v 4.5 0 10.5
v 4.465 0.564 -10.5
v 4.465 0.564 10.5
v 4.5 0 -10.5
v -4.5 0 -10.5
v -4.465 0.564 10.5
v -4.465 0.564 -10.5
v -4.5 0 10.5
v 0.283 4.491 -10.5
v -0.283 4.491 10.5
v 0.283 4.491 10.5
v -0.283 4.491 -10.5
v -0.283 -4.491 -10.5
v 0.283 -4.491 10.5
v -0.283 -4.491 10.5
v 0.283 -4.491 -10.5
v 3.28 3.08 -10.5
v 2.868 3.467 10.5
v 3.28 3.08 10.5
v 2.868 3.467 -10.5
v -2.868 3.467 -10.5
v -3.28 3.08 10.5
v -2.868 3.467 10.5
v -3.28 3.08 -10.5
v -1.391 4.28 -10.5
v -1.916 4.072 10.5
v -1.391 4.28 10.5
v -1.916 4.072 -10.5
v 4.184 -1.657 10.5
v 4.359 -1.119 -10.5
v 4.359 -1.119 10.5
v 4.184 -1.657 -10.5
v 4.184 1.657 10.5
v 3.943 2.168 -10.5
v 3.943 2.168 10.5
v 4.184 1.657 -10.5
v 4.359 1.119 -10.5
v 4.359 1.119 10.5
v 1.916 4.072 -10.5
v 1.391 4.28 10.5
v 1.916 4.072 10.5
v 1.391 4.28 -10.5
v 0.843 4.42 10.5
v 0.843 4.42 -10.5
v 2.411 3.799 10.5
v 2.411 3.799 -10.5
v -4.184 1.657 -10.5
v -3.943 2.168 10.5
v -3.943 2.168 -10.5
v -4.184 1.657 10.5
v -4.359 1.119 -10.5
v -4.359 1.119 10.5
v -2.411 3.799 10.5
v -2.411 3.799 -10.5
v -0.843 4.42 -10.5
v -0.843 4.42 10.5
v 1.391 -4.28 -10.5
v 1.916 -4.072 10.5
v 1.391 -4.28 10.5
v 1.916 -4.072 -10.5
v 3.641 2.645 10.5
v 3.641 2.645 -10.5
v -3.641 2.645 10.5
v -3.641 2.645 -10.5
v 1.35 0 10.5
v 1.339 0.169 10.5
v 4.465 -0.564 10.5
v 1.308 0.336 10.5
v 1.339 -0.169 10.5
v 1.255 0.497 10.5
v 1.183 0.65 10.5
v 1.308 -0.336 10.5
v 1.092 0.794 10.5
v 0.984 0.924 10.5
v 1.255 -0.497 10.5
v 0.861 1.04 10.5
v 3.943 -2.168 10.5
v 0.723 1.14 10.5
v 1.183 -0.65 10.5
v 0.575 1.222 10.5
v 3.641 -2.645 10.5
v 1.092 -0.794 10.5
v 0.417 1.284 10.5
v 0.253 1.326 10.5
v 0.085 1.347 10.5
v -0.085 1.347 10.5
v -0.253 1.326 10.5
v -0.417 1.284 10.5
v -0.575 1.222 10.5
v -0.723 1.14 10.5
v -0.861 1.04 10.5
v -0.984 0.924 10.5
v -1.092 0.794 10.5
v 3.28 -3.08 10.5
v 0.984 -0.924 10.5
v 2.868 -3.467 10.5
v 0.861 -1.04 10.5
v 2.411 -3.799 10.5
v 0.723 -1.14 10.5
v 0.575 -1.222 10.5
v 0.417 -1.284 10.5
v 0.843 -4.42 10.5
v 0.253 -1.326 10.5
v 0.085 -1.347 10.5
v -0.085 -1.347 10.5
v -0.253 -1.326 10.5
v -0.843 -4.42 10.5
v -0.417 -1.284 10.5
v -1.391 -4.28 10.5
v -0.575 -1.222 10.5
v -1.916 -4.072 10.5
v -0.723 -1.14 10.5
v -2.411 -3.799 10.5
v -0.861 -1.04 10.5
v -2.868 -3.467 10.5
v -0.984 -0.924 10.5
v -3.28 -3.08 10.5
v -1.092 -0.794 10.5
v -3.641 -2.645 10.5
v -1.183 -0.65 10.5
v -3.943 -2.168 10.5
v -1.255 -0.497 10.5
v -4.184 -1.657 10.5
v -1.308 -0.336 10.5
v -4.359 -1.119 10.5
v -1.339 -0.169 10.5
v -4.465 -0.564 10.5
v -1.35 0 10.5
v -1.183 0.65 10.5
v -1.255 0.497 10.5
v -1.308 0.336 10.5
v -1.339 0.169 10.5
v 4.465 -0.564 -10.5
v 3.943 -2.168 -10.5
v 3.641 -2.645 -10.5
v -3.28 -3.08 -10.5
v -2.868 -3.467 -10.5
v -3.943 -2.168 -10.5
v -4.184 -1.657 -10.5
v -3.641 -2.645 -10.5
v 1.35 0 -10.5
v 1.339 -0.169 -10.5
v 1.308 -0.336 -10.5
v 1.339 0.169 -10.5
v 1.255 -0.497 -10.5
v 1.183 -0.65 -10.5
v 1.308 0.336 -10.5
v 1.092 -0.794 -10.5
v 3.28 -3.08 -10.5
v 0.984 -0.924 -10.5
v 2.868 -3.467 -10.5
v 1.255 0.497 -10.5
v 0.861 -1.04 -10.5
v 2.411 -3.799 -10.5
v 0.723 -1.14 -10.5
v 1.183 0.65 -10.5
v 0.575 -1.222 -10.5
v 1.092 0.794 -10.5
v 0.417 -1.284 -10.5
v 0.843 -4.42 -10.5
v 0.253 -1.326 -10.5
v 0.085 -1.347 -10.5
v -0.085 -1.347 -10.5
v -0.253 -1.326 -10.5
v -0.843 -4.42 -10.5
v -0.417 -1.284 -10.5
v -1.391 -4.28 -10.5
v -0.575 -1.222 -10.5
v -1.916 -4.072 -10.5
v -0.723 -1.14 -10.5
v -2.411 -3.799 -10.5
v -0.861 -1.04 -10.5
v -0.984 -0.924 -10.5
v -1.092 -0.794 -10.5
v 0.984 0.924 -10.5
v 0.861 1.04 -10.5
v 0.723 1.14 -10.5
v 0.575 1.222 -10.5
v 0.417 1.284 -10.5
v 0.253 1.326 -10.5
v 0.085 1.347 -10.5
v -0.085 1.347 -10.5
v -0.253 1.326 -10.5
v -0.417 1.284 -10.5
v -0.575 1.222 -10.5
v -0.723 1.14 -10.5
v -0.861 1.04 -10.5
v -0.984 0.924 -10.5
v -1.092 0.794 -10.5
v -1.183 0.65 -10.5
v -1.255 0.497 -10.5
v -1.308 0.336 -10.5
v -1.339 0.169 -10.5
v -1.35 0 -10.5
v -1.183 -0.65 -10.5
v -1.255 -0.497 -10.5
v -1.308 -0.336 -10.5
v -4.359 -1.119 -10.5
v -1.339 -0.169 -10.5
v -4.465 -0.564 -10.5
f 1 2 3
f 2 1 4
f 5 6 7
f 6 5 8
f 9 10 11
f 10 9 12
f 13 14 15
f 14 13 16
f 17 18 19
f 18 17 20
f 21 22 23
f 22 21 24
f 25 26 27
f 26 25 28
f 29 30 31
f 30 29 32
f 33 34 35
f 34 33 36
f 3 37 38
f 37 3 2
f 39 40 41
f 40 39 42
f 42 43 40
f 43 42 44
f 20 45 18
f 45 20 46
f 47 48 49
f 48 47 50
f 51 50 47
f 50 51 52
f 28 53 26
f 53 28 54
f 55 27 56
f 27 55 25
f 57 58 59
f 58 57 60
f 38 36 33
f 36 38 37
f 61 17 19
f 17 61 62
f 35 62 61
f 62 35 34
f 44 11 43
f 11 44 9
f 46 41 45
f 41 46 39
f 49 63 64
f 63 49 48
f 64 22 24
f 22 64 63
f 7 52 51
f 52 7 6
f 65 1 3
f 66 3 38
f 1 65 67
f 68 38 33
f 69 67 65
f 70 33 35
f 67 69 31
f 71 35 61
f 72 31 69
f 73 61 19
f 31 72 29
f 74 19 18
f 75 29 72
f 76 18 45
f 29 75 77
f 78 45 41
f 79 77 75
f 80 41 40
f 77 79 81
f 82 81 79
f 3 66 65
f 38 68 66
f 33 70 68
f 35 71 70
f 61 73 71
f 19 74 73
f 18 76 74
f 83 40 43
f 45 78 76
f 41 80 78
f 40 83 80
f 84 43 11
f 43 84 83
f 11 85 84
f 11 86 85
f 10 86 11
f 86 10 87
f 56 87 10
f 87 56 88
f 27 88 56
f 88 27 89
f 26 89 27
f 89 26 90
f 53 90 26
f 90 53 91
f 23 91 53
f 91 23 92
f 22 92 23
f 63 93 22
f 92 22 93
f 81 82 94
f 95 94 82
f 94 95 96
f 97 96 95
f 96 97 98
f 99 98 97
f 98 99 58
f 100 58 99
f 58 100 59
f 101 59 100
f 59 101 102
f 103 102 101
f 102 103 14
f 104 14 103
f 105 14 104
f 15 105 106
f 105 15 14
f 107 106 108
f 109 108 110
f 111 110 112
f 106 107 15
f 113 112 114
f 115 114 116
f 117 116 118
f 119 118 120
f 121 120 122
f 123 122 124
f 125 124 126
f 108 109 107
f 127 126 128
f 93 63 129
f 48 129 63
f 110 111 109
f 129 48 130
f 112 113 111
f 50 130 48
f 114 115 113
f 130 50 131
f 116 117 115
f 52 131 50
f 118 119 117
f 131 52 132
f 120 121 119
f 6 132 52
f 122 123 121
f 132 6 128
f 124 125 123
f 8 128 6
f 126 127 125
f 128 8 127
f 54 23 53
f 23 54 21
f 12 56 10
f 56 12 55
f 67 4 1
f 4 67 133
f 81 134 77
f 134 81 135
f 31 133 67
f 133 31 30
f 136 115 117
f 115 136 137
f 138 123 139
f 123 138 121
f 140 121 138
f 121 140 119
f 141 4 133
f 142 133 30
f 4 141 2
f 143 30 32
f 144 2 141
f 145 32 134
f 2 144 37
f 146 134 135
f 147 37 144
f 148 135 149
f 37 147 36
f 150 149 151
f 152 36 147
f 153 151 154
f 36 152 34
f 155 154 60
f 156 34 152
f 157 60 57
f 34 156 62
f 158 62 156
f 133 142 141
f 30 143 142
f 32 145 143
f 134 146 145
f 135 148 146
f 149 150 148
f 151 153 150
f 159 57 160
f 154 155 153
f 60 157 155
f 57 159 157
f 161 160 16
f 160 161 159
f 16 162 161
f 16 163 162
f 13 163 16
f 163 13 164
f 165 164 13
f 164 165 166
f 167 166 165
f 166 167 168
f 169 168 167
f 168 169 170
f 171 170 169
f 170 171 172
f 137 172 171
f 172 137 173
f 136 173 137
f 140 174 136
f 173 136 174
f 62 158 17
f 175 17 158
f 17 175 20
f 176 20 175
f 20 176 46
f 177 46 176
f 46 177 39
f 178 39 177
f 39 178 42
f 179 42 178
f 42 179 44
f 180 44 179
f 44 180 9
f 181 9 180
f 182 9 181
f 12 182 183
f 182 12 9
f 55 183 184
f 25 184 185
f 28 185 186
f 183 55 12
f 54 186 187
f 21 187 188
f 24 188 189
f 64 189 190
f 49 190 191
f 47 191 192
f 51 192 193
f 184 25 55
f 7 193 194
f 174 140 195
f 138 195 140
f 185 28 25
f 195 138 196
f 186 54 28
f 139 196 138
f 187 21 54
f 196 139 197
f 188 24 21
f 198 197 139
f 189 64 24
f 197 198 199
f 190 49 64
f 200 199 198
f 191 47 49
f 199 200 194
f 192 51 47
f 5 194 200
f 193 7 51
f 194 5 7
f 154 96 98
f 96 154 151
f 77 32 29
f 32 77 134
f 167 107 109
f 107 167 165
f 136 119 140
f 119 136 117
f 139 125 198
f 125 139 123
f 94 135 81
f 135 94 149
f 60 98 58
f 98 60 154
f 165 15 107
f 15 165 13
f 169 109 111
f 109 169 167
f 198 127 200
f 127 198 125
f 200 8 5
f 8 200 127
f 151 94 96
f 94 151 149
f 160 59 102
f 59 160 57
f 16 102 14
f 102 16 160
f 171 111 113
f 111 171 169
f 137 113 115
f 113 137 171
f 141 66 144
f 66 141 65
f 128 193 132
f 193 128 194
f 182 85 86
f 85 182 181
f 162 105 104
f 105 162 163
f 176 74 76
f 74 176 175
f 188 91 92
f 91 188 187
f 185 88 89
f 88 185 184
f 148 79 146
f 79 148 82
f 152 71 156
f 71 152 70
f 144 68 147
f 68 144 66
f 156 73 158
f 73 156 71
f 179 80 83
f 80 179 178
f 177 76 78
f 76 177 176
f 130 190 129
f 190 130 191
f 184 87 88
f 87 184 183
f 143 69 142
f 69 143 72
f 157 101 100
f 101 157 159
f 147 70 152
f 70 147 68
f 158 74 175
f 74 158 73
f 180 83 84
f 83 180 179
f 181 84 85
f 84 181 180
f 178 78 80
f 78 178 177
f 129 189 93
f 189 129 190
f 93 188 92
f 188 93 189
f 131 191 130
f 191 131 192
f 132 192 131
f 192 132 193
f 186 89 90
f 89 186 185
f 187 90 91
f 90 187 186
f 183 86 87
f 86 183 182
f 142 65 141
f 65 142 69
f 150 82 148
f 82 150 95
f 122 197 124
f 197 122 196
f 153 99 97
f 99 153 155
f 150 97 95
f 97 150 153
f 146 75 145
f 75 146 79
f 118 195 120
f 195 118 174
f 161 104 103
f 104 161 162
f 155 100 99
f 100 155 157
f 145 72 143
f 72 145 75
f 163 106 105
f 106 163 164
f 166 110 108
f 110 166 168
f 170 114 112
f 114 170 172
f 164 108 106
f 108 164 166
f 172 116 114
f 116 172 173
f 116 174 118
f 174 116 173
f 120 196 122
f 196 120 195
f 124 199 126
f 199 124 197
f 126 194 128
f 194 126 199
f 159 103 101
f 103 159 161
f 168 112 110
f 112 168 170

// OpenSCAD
$fn = 50;


difference() {
	union() {
		translate(v = [0, 0, -10.5000000000]) {
			cylinder(h = 21, r = 4.5000000000);
		}
	}
	union() {
		translate(v = [0, 0, -100.0000000000]) {
			cylinder(h = 200, r = 1.3500000000);
		}
	}
}
